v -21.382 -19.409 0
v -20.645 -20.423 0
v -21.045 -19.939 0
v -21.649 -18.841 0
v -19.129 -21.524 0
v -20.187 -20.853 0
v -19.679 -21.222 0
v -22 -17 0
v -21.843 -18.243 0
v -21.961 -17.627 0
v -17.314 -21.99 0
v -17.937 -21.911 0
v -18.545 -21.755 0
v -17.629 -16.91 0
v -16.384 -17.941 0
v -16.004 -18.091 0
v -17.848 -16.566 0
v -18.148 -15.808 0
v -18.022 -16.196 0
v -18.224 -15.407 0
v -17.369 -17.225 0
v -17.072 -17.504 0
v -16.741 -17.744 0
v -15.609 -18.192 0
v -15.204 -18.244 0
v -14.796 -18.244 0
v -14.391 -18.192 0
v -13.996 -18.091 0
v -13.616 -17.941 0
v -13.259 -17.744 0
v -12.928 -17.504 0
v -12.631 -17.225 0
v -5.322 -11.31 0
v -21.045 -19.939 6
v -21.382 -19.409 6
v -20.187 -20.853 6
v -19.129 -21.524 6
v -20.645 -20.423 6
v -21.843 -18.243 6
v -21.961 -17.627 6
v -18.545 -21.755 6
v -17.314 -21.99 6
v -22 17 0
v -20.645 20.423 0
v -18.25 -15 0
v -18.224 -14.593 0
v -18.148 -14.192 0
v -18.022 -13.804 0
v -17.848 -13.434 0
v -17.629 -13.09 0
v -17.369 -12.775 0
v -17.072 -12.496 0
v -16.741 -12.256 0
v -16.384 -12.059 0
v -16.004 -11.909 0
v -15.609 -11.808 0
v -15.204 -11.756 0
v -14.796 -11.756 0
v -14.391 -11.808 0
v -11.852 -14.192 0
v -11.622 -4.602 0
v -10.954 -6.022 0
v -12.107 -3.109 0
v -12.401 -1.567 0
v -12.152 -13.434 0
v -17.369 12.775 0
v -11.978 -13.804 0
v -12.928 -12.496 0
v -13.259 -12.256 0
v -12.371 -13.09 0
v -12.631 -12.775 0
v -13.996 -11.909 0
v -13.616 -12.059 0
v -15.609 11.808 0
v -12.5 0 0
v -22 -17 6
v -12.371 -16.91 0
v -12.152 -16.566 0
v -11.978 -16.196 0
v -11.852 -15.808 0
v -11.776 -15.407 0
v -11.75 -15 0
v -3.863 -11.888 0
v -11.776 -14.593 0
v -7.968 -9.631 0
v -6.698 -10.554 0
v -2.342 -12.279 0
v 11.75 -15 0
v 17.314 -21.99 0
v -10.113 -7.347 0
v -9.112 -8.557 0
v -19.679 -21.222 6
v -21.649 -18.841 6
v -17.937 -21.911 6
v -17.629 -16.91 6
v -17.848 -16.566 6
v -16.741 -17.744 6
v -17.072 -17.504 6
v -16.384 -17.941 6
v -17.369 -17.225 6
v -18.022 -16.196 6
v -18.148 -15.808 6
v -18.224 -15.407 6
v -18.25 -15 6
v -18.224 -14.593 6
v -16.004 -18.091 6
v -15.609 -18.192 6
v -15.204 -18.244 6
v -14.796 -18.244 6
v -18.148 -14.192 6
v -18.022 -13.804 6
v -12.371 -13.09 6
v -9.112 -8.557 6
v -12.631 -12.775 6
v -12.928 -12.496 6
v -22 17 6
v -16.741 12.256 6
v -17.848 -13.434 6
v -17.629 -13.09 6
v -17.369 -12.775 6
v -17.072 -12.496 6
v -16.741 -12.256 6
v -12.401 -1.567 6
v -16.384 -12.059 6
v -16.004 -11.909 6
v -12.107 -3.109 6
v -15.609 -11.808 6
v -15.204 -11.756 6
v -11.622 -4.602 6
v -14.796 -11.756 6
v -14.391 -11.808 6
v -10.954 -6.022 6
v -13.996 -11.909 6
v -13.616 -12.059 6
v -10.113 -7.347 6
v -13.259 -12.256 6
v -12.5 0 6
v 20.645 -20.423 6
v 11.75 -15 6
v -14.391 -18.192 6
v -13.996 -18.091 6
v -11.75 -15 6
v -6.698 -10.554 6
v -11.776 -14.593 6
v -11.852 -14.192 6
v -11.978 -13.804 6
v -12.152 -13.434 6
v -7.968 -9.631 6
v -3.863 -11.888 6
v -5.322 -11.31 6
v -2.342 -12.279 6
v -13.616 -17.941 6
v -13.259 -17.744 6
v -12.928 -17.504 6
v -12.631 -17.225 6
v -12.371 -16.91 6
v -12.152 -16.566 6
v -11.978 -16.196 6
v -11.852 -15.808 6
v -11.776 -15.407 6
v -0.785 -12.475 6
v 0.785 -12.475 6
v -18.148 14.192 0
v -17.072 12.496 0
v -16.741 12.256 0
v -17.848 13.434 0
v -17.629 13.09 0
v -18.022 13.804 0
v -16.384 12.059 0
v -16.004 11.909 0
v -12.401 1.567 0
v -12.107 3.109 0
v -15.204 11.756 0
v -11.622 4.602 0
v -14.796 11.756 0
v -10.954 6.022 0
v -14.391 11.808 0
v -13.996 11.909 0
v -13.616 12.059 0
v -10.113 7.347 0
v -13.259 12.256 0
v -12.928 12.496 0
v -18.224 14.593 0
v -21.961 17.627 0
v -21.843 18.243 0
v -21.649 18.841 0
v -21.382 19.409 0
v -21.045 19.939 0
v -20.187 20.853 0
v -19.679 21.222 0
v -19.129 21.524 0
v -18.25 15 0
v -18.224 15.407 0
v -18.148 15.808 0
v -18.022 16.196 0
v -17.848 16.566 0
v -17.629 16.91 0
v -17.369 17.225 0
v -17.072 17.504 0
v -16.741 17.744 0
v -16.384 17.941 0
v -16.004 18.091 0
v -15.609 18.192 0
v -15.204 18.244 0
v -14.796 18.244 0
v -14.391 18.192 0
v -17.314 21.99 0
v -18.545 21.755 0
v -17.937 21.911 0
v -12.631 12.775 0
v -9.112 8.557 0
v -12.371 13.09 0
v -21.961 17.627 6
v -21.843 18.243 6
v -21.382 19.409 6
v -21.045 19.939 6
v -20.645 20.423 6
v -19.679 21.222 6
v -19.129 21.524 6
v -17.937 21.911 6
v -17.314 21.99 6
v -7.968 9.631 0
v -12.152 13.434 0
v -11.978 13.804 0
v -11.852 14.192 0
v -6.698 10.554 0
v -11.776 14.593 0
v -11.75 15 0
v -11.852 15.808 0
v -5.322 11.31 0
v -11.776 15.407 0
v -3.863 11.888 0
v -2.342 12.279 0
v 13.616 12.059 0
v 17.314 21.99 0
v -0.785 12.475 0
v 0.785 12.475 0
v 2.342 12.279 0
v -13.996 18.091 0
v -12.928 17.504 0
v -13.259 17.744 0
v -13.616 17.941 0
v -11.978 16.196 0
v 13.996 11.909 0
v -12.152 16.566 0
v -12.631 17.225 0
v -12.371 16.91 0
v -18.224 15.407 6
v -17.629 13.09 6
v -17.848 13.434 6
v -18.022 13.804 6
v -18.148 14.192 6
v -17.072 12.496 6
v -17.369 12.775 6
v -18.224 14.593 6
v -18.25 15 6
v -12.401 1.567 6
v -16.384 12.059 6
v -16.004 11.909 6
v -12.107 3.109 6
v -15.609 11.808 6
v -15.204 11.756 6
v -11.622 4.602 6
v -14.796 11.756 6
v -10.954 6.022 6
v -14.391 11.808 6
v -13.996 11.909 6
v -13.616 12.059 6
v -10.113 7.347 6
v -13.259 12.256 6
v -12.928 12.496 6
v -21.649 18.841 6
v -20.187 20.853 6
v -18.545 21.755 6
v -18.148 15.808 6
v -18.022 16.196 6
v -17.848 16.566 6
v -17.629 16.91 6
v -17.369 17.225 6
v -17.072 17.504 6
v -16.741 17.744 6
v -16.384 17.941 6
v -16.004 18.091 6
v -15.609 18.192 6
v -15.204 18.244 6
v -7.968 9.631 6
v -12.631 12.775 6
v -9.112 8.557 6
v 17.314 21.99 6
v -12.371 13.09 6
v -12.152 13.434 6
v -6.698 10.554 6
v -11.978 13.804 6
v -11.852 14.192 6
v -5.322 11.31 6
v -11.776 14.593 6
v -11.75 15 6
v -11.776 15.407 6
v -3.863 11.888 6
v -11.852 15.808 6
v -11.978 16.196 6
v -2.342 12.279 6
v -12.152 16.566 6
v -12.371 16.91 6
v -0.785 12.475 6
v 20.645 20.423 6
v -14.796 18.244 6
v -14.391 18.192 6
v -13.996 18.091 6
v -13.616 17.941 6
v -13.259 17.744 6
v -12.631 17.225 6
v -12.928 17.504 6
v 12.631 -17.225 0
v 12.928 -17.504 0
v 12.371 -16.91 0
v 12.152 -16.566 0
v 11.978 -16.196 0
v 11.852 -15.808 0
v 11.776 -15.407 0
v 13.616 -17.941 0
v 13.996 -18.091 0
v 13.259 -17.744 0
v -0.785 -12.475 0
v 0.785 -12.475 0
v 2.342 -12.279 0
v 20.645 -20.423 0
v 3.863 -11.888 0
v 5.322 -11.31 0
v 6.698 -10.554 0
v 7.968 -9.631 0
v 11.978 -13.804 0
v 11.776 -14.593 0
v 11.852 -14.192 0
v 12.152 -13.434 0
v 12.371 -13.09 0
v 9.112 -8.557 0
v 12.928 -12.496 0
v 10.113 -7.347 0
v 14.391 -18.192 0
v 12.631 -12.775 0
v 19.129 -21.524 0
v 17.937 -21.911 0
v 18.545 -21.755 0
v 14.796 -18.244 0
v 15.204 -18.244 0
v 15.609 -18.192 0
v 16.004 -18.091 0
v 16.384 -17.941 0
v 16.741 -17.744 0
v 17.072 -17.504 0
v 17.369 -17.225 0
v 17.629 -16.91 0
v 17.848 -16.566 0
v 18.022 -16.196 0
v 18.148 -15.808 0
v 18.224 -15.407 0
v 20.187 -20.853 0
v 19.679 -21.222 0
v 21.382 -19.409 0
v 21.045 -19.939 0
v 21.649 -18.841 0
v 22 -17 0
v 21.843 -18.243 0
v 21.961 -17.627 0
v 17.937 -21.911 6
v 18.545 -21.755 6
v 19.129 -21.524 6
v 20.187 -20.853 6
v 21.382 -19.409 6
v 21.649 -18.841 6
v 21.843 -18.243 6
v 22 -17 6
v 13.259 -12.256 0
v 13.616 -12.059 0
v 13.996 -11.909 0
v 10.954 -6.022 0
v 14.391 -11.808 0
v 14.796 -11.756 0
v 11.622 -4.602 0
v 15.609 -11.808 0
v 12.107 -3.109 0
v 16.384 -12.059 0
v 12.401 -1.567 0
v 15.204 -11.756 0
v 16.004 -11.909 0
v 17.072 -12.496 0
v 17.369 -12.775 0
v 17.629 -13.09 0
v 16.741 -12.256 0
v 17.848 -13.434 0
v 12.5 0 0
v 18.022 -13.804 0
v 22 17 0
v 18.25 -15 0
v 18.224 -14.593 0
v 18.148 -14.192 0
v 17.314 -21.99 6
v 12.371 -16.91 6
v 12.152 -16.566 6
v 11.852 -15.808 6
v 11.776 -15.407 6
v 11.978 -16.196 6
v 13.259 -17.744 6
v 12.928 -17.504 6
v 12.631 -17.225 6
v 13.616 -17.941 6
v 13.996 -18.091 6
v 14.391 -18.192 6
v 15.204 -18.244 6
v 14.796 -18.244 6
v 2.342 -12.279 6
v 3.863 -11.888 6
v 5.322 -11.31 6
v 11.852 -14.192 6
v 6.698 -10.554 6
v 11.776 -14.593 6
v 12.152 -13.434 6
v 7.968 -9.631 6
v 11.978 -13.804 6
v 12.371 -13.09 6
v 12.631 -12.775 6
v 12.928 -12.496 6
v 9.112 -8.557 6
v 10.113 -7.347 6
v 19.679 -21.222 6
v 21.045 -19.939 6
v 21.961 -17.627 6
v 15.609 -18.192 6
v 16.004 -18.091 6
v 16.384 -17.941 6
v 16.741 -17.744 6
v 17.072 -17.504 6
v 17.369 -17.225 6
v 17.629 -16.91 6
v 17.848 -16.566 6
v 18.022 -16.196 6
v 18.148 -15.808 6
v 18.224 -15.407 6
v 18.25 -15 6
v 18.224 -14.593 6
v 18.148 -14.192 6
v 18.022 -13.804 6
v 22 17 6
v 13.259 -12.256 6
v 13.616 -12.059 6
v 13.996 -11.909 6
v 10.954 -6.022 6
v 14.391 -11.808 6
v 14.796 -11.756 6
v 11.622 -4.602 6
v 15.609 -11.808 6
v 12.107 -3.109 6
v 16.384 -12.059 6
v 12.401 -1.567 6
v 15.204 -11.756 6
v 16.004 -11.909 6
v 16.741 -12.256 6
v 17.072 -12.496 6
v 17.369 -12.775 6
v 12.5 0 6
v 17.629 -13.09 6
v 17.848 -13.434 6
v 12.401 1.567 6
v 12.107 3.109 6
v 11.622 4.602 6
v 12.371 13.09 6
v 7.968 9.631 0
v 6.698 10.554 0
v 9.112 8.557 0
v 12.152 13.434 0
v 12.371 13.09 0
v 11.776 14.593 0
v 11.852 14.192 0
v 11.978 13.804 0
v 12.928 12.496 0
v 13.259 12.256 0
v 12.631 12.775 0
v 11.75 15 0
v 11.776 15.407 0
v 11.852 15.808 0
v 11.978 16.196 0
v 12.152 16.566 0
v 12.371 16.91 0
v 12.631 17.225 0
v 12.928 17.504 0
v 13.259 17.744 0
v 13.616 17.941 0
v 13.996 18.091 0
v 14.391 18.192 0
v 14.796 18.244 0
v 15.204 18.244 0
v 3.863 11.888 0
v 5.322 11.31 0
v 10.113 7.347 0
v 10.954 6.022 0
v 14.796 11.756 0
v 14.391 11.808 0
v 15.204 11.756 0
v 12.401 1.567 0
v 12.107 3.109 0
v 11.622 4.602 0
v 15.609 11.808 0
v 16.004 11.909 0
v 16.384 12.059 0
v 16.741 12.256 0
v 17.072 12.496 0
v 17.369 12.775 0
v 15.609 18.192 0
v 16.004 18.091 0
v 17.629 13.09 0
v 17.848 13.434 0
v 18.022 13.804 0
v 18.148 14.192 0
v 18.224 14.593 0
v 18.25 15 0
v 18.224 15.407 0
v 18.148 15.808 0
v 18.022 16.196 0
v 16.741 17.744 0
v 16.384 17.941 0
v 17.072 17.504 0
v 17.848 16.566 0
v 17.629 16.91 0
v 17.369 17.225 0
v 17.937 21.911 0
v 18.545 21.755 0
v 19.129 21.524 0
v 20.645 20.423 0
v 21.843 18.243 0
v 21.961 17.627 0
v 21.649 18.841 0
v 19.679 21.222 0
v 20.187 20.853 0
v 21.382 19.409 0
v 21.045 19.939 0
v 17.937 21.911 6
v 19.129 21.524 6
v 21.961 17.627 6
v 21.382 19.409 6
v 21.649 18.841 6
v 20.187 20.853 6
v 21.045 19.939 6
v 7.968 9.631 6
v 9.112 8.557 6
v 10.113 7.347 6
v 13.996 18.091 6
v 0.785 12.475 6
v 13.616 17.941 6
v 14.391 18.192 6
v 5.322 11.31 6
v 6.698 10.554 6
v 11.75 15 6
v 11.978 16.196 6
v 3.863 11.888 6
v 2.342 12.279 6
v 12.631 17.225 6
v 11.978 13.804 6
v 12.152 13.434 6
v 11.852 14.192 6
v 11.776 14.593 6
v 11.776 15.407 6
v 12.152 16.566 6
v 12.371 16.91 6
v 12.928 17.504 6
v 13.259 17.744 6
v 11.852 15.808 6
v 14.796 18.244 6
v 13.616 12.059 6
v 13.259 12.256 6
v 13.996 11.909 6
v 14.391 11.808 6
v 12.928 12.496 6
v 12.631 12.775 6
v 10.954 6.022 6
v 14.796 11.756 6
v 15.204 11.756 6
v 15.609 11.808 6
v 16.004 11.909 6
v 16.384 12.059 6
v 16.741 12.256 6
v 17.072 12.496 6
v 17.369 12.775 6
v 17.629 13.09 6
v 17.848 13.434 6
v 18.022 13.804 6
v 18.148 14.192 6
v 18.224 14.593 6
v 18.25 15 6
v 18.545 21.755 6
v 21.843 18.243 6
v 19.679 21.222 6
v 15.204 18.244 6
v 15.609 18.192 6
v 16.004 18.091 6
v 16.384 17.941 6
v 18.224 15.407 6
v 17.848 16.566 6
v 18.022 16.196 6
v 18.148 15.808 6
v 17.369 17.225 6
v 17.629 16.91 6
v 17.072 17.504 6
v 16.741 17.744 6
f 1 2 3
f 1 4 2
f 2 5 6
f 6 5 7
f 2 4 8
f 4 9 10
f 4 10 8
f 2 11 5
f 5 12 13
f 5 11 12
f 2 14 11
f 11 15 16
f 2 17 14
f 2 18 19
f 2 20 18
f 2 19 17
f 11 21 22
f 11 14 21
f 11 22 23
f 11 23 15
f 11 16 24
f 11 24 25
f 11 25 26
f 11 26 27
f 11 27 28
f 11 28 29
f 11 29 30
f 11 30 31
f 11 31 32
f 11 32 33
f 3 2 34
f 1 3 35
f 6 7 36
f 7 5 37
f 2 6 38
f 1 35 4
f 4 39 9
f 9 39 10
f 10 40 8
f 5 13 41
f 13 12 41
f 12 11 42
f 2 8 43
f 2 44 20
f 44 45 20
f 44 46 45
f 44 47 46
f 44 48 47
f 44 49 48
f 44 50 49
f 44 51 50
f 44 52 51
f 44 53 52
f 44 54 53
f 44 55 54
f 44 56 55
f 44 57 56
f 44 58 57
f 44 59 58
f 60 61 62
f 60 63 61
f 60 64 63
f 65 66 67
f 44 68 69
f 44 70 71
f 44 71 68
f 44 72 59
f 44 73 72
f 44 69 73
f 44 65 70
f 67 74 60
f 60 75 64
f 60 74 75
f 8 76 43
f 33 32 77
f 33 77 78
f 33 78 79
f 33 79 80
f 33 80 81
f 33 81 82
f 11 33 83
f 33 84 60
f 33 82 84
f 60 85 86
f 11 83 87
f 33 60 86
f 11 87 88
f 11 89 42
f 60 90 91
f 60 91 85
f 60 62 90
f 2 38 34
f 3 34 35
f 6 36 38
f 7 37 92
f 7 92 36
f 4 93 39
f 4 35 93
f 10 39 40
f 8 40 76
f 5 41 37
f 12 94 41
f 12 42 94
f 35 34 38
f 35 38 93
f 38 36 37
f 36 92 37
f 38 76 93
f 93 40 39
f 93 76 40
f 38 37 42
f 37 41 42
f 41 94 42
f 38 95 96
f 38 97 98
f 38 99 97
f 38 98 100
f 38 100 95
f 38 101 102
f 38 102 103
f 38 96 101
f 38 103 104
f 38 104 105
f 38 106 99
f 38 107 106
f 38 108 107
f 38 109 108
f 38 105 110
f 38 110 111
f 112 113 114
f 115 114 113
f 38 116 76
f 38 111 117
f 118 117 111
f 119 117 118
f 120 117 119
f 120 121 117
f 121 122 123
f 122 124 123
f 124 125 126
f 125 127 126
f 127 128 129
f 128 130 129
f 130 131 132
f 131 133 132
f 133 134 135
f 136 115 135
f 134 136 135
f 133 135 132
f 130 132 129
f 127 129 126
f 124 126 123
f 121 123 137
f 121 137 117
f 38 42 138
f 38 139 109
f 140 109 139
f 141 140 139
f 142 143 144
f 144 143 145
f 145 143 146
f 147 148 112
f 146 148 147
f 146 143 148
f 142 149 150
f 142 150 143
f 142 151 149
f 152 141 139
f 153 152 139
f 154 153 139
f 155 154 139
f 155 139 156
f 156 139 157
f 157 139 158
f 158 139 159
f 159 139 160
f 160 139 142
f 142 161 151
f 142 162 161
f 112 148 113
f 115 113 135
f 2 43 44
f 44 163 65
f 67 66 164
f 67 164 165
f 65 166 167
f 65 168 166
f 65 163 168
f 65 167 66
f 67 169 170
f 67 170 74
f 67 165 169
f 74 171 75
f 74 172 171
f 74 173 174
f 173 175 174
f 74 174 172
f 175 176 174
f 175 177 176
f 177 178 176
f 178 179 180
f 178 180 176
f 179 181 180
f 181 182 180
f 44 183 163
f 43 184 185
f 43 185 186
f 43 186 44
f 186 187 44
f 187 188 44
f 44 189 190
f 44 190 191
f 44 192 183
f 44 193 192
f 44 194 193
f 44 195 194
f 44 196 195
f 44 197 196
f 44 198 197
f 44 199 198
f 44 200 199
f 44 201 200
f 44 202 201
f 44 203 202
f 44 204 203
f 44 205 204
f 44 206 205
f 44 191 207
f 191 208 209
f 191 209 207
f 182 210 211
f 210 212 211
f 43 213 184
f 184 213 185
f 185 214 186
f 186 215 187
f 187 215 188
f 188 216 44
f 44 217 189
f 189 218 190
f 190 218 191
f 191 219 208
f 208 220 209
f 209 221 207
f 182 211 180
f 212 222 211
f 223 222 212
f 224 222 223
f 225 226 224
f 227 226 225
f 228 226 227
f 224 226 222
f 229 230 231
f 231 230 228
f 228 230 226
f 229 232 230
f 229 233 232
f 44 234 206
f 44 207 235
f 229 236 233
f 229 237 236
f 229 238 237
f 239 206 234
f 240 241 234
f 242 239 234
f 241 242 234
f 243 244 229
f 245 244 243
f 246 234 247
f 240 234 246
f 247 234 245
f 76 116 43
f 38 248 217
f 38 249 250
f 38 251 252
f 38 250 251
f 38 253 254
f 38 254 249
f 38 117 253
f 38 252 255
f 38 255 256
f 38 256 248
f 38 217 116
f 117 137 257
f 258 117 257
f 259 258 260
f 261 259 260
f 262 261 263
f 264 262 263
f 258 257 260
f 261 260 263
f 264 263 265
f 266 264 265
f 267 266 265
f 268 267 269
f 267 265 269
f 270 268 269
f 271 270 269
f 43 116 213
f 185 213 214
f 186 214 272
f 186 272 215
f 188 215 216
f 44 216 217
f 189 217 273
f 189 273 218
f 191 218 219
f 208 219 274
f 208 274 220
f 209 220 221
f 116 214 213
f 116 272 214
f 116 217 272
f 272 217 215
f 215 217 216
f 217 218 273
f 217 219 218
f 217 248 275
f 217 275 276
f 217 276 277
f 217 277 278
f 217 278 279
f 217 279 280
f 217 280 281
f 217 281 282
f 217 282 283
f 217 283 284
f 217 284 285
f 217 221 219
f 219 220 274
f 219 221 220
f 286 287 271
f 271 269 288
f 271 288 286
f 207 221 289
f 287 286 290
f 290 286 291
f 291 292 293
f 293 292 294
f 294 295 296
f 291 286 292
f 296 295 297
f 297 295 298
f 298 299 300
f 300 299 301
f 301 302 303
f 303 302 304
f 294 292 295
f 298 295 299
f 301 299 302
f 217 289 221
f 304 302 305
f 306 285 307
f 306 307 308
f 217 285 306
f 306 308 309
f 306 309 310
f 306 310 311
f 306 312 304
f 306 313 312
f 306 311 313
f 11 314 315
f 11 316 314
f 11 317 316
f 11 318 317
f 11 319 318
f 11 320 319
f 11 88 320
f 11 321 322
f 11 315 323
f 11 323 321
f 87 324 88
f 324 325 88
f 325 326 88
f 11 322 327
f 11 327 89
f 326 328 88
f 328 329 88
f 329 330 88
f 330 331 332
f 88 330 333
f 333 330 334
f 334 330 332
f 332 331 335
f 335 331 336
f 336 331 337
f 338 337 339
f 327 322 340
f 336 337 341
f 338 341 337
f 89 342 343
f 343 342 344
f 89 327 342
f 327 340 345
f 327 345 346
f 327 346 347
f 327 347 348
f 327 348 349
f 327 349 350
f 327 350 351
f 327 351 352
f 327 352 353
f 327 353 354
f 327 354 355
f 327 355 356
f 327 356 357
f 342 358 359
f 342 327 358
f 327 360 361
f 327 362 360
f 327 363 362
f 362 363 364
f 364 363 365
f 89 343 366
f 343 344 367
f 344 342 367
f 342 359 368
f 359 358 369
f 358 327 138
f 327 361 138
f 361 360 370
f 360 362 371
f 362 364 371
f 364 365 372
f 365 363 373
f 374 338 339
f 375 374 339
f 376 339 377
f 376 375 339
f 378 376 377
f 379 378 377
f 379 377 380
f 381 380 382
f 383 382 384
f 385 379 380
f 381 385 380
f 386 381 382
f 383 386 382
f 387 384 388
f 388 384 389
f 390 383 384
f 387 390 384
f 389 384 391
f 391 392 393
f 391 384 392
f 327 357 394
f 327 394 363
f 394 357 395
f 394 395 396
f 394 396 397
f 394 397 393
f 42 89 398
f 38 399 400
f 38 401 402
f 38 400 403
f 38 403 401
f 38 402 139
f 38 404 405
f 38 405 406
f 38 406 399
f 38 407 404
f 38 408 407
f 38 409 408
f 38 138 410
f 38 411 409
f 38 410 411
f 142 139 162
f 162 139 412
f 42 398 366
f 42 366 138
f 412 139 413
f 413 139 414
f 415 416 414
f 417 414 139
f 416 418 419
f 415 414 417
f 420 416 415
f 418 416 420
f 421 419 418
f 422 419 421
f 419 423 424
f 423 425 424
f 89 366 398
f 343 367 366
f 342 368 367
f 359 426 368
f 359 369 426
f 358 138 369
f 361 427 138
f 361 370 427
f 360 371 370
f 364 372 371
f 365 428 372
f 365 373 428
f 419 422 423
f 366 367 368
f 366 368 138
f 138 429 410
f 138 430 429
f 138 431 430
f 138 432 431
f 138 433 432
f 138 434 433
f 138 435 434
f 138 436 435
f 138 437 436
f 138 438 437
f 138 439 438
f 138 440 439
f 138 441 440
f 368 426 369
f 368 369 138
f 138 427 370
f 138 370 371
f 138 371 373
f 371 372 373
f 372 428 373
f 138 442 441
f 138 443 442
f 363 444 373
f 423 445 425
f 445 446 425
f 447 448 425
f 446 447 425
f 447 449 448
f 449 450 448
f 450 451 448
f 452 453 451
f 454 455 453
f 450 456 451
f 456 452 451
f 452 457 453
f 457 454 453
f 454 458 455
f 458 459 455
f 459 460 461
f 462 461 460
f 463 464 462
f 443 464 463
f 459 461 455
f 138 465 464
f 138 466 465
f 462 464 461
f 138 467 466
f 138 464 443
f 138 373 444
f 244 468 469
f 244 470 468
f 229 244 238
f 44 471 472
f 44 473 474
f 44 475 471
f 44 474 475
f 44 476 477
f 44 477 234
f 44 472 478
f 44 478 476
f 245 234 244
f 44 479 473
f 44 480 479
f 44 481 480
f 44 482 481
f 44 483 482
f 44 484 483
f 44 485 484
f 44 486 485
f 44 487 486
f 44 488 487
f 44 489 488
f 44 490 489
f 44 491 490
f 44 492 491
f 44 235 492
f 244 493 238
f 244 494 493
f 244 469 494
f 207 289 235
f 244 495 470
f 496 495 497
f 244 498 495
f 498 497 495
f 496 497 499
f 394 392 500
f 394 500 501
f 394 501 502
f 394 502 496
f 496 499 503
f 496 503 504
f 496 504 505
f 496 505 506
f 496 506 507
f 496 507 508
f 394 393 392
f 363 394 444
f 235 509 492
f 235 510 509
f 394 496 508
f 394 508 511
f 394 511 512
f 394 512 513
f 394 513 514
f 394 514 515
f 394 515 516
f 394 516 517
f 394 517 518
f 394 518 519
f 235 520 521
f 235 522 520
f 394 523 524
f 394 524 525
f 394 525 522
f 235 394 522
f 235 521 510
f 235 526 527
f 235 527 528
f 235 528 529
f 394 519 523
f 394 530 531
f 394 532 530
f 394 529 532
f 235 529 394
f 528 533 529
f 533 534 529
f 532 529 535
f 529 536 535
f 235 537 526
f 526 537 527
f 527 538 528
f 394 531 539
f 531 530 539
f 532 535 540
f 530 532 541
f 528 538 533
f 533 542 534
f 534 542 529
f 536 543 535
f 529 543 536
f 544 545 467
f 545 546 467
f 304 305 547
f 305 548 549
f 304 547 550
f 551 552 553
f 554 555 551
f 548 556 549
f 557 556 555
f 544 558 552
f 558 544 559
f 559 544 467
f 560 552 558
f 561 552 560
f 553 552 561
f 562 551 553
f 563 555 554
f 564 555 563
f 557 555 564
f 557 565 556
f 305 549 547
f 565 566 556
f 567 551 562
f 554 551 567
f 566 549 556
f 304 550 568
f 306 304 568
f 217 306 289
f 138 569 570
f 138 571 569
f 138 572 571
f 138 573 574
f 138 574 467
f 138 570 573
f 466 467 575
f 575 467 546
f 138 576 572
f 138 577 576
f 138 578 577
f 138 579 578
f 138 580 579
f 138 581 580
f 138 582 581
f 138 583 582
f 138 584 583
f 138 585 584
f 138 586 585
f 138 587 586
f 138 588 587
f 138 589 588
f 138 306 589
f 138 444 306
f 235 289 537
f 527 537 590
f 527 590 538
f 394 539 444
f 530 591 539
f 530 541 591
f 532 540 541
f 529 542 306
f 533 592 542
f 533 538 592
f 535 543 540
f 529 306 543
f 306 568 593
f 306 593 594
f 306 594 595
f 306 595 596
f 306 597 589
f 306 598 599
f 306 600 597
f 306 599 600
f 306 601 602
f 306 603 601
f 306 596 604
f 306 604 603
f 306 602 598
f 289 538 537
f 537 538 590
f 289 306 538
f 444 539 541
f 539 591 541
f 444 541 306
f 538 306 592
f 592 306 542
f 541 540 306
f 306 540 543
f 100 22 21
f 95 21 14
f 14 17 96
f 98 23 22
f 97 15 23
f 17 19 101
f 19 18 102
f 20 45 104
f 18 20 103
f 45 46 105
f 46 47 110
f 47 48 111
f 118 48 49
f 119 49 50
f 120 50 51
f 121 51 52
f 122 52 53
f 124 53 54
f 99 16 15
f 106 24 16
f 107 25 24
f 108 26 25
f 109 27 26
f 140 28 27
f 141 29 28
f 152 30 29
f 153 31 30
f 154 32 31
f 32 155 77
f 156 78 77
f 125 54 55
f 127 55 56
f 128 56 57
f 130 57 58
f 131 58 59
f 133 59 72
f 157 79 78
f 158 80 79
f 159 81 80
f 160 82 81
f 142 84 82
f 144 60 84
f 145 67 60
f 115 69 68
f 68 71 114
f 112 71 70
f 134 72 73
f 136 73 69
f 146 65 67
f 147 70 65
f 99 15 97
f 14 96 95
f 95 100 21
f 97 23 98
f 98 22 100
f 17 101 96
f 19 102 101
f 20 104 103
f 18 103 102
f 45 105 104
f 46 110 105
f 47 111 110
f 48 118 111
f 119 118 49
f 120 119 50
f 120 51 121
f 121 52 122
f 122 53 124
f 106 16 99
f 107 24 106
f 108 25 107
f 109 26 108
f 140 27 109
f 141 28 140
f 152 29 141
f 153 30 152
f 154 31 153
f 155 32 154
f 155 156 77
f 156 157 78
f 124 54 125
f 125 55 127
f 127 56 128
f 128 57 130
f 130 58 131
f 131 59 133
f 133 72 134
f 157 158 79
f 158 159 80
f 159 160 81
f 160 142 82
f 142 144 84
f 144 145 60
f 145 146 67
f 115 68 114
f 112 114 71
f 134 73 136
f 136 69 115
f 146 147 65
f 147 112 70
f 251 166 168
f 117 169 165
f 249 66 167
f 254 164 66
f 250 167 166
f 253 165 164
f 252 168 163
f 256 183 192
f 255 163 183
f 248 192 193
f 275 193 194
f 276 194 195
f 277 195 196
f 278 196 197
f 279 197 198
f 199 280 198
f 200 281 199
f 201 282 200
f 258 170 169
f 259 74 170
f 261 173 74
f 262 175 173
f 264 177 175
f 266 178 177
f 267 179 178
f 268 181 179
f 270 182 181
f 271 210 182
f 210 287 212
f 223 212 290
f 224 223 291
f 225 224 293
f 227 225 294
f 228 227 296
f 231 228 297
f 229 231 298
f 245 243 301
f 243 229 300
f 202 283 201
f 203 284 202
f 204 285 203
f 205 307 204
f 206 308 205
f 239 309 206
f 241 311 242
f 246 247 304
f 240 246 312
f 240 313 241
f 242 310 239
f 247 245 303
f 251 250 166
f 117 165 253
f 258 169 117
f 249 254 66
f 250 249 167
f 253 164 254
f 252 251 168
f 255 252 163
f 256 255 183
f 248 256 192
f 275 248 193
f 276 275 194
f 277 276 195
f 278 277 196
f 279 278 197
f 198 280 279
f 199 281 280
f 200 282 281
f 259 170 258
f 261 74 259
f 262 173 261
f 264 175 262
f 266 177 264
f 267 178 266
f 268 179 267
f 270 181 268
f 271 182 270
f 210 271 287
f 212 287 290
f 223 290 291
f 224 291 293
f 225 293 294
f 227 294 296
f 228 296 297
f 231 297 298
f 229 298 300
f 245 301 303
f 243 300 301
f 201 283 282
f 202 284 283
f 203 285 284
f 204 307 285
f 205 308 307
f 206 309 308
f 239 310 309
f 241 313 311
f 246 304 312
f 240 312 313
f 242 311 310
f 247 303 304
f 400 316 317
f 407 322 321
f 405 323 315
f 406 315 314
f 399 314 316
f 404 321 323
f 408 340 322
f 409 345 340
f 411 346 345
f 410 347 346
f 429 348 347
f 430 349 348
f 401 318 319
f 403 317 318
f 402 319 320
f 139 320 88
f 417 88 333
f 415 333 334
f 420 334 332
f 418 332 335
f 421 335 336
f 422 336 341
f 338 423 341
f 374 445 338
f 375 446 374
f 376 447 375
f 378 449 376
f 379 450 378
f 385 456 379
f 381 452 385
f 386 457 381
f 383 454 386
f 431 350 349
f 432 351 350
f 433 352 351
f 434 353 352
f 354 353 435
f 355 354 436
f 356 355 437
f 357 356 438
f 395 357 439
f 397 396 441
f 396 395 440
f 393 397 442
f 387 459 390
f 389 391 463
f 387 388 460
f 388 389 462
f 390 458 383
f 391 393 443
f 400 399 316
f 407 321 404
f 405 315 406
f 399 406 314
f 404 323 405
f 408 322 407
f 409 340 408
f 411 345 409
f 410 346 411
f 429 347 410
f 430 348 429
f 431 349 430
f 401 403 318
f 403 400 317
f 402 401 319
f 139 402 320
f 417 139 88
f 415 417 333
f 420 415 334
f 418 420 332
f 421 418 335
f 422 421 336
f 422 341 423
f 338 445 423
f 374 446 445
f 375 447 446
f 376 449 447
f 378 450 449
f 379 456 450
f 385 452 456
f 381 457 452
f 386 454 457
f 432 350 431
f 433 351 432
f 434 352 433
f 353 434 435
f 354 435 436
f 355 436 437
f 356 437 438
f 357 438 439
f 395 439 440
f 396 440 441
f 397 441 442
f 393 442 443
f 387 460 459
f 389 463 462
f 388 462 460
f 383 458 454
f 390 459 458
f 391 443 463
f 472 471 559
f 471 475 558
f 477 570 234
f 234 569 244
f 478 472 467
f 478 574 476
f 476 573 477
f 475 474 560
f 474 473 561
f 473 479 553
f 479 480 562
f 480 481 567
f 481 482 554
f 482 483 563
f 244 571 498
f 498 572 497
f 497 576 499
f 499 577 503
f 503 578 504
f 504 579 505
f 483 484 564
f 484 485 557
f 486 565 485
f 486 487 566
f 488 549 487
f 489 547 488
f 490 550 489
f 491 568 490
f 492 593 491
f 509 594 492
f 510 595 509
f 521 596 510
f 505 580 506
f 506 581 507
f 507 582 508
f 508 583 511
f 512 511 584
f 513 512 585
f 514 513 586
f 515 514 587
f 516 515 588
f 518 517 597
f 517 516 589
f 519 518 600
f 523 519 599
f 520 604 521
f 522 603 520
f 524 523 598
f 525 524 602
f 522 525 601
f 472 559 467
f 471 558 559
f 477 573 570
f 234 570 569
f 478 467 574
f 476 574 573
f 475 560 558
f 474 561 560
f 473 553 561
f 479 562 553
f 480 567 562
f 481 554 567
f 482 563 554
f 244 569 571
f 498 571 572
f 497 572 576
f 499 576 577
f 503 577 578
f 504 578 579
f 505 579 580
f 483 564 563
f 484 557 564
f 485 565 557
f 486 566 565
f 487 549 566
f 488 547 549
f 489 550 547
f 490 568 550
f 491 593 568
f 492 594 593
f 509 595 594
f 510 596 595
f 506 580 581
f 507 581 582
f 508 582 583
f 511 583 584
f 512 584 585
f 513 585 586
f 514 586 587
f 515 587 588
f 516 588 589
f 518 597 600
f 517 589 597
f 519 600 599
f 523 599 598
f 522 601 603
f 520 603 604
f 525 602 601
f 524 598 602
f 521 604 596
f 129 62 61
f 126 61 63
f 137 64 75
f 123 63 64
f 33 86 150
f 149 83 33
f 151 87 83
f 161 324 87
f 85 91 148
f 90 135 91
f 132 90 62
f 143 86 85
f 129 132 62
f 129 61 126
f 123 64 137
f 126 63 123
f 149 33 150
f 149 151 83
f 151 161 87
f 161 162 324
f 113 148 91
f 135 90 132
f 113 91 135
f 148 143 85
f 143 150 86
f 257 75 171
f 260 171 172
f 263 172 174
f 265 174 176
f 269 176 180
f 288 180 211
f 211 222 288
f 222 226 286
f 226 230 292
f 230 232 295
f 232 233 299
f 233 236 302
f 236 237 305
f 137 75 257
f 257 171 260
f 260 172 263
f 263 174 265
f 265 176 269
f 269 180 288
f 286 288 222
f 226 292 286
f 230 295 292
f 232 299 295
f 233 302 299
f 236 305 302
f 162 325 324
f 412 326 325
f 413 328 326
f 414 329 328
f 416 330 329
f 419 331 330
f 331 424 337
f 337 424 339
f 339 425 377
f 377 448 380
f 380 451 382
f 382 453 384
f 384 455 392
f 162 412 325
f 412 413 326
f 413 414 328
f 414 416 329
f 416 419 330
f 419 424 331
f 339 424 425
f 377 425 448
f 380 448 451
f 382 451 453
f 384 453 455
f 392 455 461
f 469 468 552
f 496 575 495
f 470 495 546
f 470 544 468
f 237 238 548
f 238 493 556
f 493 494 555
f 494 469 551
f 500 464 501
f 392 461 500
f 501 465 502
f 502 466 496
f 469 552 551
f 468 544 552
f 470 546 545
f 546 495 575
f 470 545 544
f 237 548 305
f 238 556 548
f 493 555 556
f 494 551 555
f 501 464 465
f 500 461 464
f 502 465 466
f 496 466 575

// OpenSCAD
$fn = 50;

difference() {
	union() {
		hull() {
			translate(v = [-17.0, 17.0, 0]) {
				cylinder(h = 6, r = 5);
			}
			translate(v = [17.0, 17.0, 0]) {
				cylinder(h = 6, r = 5);
			}
			translate(v = [-17.0, -17.0, 0]) {
				cylinder(h = 6, r = 5);
			}
			translate(v = [17.0, -17.0, 0]) {
				cylinder(h = 6, r = 5);
			}
		}
	}
	union() {
		translate(v = [-15.0, -15.0, -100.0]) {
			cylinder(h = 200, r = 3.25);
		}
		translate(v = [-15.0, 15.0, -100.0]) {
			cylinder(h = 200, r = 3.25);
		}
		translate(v = [15.0, -15.0, -100.0]) {
			cylinder(h = 200, r = 3.25);
		}
		translate(v = [15.0, 15.0, -100.0]) {
			cylinder(h = 200, r = 3.25);
		}
		translate(v = [-15.0, -15.0, -100.0]) {
			cylinder(h = 200, r = 1.8);
		}
		translate(v = [-15.0, 15.0, -100.0]) {
			cylinder(h = 200, r = 1.8);
		}
		translate(v = [15.0, -15.0, -100.0]) {
			cylinder(h = 200, r = 1.8);
		}
		translate(v = [15.0, 15.0, -100.0]) {
			cylinder(h = 200, r = 1.8);
		}
		cylinder(h = 6, r = 12.5);
	}
}
